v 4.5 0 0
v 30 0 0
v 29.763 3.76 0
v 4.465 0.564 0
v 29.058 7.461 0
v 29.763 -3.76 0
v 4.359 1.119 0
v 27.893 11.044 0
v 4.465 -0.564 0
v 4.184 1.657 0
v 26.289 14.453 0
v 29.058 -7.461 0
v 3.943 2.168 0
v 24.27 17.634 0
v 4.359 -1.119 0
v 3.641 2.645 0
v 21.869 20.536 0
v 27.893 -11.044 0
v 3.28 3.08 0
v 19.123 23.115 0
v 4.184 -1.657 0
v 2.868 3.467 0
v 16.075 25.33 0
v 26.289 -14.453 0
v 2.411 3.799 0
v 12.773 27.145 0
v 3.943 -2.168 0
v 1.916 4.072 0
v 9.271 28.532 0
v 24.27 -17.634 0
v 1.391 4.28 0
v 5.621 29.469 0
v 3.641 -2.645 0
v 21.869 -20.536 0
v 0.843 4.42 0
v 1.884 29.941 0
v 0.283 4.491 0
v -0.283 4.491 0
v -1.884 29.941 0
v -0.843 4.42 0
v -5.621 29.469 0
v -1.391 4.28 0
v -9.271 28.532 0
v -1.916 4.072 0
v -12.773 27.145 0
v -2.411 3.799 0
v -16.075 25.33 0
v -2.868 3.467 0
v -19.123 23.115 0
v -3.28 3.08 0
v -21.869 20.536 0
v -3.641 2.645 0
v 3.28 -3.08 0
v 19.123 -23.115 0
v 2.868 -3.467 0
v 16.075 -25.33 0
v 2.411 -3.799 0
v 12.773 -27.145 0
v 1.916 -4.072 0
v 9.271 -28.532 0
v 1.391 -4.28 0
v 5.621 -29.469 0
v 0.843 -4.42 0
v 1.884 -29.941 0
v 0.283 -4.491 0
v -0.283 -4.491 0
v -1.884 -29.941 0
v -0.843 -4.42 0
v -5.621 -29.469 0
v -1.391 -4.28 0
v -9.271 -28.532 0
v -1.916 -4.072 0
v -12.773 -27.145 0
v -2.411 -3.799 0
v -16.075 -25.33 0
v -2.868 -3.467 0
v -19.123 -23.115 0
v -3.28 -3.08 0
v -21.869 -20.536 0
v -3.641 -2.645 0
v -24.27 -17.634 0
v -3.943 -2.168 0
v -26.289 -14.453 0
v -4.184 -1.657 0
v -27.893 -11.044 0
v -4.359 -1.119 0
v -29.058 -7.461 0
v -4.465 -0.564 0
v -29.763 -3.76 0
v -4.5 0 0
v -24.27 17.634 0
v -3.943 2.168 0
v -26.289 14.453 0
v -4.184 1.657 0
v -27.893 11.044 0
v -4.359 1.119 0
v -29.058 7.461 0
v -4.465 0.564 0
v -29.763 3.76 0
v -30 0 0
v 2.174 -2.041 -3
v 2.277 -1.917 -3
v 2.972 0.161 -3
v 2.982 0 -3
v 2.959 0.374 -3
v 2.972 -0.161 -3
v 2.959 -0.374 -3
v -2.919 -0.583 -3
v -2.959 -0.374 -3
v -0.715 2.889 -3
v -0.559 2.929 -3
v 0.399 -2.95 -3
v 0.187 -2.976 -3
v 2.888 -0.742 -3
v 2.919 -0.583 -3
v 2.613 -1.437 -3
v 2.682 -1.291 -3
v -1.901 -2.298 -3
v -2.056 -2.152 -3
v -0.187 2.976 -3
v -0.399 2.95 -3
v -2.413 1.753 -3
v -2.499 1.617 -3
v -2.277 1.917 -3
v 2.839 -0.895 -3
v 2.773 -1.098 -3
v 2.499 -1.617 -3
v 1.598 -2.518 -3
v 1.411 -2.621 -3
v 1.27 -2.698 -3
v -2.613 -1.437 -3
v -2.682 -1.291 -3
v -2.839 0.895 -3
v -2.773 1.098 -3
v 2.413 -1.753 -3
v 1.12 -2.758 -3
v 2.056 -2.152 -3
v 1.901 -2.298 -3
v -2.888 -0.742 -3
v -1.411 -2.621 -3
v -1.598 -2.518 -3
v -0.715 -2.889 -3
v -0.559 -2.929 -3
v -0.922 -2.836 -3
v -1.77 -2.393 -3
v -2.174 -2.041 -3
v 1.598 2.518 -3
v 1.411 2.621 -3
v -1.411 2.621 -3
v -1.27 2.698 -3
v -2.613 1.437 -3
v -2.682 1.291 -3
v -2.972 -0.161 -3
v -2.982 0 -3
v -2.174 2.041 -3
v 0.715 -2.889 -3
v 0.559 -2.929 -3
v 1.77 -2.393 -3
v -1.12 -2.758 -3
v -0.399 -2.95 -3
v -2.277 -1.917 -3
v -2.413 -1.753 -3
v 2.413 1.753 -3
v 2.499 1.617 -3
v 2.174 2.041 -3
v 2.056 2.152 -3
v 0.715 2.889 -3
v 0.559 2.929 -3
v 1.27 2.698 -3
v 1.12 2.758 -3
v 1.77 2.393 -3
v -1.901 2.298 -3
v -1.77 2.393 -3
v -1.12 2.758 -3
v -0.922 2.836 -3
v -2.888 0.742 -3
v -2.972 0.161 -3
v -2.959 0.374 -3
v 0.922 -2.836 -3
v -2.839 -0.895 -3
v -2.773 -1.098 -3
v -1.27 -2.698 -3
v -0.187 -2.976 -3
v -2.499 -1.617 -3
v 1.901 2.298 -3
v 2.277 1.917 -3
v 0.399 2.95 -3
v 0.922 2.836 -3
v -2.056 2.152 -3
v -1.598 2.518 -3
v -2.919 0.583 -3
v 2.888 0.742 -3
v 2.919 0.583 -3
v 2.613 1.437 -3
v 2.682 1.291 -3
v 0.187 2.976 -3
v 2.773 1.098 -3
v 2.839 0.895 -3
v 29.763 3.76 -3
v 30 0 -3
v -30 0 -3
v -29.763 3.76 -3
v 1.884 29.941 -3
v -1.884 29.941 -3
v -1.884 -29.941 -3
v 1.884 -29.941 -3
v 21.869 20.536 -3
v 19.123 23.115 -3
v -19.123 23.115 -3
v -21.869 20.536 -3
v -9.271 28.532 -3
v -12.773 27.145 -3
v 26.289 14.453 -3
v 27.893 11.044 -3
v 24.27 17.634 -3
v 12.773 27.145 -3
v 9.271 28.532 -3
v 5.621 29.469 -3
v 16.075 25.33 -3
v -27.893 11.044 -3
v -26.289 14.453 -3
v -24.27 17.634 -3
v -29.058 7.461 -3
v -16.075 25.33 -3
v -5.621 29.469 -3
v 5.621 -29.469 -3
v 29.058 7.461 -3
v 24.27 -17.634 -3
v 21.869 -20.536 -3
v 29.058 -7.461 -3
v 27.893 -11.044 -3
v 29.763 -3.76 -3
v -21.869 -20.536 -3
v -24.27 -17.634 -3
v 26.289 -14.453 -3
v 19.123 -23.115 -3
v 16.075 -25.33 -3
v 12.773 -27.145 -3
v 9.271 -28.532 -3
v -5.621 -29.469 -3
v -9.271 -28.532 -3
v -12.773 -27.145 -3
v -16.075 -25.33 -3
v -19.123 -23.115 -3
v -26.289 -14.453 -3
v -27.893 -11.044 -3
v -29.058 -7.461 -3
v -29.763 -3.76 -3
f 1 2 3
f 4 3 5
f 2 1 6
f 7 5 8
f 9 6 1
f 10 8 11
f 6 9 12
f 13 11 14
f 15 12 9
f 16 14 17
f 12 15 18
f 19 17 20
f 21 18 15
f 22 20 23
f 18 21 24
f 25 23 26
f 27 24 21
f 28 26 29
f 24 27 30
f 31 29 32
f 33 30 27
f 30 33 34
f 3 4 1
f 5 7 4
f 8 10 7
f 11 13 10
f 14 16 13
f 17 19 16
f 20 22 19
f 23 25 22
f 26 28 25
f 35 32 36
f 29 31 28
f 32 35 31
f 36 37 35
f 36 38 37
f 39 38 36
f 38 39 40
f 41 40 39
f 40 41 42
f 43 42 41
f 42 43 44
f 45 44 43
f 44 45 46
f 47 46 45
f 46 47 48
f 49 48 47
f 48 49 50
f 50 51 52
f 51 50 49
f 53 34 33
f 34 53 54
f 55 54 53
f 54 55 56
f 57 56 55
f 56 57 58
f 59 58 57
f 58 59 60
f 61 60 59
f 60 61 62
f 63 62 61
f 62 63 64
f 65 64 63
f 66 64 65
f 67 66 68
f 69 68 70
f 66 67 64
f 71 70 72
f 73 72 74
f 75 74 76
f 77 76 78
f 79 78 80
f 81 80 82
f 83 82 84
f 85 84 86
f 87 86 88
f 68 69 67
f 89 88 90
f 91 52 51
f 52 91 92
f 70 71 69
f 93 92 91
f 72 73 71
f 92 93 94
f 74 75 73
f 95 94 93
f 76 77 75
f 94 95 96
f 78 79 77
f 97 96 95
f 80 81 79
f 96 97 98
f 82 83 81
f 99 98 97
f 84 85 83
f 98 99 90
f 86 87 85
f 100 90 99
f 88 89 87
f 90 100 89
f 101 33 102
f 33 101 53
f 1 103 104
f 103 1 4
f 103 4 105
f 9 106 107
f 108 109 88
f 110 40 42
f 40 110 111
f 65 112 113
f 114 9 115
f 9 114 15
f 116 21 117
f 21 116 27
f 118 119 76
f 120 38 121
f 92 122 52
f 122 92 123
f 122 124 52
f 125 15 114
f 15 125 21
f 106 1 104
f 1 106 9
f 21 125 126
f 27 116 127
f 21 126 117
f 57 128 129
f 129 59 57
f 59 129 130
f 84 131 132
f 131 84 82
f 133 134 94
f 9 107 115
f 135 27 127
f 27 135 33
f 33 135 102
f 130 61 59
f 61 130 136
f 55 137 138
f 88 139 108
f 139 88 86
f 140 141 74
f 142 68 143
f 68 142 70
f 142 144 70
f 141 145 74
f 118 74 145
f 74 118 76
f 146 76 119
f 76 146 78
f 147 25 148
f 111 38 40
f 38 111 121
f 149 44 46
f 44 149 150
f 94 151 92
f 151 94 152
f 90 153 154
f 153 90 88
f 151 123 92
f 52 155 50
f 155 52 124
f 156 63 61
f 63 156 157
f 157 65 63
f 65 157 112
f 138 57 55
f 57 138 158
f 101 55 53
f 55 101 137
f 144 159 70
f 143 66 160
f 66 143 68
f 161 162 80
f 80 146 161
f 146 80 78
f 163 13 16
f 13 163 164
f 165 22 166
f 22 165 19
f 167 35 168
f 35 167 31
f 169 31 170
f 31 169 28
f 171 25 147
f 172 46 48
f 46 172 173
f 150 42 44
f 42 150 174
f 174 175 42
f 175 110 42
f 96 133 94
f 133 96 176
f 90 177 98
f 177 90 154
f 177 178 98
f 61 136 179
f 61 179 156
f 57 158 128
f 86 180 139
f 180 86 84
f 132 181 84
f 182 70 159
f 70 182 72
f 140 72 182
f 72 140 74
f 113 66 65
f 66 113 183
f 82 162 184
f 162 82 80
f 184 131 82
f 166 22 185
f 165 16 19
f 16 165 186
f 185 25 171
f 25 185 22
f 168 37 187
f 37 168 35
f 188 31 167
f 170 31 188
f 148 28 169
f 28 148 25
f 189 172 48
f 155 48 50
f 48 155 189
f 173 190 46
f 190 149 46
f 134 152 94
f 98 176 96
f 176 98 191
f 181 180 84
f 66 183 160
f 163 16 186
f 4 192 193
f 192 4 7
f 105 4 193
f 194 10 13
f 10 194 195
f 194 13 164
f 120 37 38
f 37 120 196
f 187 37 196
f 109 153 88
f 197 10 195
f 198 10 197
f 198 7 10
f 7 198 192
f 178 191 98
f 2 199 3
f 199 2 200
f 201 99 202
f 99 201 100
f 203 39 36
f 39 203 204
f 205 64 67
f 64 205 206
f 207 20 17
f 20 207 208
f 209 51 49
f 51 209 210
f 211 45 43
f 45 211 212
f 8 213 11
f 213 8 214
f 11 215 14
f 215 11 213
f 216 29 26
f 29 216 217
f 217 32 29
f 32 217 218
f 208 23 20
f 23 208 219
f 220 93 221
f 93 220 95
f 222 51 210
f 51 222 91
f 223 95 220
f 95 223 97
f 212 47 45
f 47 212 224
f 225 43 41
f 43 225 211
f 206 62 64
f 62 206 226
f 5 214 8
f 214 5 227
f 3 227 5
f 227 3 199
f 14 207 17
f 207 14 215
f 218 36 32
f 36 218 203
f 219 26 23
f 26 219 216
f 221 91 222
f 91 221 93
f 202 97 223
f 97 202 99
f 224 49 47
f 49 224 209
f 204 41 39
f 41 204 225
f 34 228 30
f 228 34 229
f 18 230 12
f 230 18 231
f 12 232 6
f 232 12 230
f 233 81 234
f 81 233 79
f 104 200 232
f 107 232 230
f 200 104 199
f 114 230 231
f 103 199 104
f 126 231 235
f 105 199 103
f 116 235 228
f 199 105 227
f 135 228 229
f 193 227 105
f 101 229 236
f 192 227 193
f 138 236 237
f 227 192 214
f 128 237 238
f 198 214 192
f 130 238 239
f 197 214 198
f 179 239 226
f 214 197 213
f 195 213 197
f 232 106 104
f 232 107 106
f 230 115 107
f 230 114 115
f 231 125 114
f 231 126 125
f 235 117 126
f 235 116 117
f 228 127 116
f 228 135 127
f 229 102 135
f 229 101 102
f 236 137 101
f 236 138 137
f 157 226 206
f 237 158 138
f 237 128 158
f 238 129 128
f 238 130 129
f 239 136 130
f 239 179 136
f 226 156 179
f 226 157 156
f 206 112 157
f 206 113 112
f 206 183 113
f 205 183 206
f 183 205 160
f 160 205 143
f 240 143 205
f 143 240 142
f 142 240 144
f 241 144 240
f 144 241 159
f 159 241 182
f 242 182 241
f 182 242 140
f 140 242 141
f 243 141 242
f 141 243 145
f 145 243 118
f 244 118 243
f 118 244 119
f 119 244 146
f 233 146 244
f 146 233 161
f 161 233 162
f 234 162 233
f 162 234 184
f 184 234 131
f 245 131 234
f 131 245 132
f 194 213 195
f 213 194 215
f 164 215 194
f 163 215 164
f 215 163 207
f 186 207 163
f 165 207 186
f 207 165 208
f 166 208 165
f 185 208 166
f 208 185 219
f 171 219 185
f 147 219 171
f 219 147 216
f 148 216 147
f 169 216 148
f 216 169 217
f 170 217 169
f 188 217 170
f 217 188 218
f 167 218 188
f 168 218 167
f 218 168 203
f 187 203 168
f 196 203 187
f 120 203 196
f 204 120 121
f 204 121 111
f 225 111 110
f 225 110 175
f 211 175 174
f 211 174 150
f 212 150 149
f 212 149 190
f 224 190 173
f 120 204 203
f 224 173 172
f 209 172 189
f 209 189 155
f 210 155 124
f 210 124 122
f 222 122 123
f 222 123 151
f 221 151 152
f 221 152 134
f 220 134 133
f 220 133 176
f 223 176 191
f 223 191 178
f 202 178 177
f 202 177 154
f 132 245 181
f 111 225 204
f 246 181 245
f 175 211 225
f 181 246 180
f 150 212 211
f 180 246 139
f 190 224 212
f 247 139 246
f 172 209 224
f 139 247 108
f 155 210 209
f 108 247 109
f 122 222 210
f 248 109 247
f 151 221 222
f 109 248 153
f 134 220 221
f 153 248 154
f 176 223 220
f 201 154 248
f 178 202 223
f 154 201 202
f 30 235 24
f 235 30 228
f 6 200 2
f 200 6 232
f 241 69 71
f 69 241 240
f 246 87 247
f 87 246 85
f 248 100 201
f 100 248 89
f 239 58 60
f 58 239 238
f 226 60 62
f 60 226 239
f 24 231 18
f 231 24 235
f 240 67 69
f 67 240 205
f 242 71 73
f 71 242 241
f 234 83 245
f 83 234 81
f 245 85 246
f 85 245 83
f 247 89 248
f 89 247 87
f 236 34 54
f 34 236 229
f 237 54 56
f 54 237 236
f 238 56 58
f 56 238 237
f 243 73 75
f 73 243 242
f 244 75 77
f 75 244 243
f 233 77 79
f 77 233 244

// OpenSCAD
$fn = 50;

difference() {
	union() {
		translate(v = [0, 0, -3.0]) {
			cylinder(h = 3, r = 30.0);
		}
	}
	union() {
		translate(v = [0, 0, 0]) {
			rotate(a = [0, 0, 0]) {
				difference() {
					union() {
						translate(v = [0, 0, -6.0]) {
							cylinder(h = 6, r = 2.25);
						}
						translate(v = [0, 0, -4.2]) {
							cylinder(h = 4.2, r1 = 2.375, r2 = 4.5);
						}
						translate(v = [0, 0, -6.0]) {
							cylinder(h = 6, r = 2.375);
						}
						translate(v = [0, 0, -6.0]) {
							cylinder(h = 6, r = 2.25);
						}
					}
					union();
				}
			}
		}
	}
}
